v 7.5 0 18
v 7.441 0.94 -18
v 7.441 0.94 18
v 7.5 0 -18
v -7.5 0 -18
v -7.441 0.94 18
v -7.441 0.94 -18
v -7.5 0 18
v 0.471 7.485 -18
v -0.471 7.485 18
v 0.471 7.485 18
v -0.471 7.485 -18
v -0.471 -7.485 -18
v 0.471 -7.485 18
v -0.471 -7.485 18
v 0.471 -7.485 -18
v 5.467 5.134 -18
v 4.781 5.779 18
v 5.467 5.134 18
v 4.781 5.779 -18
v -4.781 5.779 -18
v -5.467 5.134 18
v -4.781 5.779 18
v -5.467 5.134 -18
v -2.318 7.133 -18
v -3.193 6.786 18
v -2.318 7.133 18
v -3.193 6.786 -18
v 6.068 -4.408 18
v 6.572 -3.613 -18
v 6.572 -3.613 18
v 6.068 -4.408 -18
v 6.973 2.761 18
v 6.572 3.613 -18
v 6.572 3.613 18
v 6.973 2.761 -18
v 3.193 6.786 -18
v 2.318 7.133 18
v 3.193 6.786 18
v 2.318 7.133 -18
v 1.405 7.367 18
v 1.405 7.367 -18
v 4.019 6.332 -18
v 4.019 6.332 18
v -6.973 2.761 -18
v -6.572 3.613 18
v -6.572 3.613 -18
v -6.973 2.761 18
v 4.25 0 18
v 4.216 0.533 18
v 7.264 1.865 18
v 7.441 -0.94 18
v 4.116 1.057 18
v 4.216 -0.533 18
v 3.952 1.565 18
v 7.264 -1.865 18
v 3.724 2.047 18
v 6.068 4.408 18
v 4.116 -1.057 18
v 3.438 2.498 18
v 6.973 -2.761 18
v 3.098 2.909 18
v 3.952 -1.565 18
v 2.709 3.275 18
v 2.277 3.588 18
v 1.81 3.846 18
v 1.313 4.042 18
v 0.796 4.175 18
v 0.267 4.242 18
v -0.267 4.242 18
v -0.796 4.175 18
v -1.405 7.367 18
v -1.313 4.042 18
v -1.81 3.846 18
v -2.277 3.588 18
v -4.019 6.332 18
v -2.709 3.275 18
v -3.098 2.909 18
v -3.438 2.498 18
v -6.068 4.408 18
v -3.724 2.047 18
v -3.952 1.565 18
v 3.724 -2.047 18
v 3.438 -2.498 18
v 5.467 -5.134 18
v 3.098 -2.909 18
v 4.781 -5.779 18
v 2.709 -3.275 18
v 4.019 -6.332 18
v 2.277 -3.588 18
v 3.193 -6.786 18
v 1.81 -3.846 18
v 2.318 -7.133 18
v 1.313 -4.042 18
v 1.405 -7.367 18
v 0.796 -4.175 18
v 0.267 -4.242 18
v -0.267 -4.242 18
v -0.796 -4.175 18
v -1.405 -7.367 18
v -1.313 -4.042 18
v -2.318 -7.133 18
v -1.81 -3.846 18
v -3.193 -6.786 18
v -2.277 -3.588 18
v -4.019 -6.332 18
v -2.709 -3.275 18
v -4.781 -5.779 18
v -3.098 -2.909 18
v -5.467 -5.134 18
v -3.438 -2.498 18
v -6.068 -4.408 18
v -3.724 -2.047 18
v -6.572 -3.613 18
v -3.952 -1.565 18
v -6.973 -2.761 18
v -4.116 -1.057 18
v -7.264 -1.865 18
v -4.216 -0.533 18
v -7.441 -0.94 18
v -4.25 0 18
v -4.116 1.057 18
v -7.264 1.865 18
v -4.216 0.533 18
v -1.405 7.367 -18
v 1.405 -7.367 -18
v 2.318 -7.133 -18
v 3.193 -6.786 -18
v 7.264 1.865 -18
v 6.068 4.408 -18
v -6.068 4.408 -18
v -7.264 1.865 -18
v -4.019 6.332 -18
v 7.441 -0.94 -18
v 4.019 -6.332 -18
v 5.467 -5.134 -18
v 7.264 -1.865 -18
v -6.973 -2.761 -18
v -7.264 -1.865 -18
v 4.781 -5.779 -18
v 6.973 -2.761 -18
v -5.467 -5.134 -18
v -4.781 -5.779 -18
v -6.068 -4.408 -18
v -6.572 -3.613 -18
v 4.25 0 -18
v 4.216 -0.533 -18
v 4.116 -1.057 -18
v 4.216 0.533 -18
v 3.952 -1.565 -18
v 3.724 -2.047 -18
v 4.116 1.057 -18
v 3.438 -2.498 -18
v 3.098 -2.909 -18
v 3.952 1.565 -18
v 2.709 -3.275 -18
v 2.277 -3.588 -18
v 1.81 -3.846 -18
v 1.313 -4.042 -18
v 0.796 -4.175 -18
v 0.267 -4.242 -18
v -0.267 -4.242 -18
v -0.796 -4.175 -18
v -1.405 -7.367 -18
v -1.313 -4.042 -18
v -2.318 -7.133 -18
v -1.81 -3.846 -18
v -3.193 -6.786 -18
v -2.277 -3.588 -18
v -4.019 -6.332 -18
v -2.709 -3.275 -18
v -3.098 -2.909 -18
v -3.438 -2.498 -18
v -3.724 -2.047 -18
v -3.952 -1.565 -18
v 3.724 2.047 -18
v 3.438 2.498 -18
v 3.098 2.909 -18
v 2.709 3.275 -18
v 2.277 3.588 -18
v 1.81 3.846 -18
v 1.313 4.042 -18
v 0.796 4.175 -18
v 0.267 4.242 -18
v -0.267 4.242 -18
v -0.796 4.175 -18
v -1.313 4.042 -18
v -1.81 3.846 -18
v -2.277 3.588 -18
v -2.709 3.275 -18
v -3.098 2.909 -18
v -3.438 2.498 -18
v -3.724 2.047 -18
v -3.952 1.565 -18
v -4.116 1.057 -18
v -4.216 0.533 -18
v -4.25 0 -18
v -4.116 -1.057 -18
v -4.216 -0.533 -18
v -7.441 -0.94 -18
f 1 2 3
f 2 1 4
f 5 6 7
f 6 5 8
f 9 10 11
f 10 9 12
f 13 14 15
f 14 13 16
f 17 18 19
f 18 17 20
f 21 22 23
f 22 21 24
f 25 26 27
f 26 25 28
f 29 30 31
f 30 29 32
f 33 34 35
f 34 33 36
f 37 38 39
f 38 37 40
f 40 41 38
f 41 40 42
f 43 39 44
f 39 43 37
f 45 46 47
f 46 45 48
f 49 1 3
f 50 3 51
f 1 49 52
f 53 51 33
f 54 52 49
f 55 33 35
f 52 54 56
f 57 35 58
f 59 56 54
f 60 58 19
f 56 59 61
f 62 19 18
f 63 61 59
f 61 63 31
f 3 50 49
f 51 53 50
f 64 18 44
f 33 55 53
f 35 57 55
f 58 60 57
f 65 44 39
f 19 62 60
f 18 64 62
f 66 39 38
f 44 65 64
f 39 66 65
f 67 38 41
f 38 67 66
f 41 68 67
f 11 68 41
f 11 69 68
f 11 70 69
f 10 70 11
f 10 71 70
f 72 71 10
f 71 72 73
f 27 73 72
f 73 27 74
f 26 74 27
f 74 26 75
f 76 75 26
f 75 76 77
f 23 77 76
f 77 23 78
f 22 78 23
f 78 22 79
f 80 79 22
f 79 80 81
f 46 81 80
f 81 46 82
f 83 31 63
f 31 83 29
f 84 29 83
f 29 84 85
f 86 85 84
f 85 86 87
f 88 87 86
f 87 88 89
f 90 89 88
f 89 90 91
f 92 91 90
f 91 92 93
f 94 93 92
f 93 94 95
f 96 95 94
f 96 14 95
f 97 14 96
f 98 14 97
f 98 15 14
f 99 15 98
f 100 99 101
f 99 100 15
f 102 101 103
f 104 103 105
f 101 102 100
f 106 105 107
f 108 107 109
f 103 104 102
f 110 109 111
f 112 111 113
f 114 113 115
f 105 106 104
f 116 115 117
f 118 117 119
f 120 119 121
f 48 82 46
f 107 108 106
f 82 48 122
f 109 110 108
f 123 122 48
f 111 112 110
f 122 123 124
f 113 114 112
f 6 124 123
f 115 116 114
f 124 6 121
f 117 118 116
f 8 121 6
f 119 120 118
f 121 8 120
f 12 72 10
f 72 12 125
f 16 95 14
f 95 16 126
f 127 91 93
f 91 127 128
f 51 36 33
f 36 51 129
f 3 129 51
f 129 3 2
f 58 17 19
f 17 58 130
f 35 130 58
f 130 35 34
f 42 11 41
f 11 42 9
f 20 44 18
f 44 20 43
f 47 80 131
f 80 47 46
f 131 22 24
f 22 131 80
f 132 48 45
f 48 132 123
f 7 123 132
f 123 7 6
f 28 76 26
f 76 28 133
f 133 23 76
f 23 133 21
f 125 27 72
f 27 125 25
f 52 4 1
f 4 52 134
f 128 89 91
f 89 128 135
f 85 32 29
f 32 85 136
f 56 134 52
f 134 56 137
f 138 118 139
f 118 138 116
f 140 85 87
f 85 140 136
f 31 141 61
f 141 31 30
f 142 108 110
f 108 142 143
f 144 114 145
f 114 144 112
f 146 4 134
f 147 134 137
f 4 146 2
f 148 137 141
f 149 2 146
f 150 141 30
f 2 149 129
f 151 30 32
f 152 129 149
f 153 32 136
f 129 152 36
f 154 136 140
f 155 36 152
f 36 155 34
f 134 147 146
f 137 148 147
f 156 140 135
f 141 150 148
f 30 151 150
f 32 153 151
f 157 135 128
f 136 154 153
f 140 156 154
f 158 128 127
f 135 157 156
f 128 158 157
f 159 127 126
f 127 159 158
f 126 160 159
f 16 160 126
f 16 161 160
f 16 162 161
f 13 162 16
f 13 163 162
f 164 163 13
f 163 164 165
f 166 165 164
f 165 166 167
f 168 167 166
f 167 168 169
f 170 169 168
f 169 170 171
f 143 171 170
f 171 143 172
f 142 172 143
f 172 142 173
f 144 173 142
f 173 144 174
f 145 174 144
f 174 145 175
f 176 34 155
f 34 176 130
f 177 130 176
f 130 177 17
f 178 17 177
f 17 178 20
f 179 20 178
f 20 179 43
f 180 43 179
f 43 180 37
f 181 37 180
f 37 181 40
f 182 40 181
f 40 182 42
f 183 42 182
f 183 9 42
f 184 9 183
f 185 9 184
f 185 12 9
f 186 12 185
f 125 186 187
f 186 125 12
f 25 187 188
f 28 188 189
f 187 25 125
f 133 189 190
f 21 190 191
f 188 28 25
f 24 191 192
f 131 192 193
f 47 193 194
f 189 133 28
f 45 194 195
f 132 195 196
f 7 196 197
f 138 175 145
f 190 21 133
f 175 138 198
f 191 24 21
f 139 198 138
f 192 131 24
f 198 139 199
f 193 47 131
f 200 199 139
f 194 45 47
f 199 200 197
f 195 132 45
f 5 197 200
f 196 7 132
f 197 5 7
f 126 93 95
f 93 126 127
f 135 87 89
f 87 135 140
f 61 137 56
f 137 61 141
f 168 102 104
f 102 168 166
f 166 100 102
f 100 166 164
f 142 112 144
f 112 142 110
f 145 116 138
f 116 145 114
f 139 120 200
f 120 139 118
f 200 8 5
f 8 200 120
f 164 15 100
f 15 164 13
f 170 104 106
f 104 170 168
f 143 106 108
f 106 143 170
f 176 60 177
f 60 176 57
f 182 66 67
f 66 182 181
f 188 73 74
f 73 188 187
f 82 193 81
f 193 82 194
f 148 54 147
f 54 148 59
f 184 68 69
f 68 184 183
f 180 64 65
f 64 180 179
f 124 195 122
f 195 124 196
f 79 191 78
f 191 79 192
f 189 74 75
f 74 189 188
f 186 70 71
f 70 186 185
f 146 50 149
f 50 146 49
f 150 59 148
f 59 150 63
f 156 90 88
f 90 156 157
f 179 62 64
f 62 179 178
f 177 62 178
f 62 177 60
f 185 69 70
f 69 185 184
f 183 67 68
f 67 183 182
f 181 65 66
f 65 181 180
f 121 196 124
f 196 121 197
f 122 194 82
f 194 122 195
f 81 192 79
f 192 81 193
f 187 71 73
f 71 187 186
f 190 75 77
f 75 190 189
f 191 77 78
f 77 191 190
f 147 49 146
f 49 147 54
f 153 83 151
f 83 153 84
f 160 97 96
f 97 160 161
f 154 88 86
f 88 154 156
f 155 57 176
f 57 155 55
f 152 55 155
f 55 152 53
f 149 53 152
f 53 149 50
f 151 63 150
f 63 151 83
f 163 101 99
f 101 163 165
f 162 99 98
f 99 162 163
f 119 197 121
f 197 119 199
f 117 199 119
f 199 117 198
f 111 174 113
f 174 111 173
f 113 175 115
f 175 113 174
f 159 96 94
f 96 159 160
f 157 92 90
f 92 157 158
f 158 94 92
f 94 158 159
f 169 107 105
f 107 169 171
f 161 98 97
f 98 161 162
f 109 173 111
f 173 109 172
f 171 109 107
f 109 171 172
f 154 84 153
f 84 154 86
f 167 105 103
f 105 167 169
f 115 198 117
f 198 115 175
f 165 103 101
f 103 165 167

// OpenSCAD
$fn = 50;


difference() {
	union() {
		translate(v = [0, 0, -18.0000000000]) {
			cylinder(h = 36, r = 7.5000000000);
		}
	}
	union() {
		translate(v = [0, 0, -100.0000000000]) {
			cylinder(h = 200, r = 4.2500000000);
		}
	}
}
